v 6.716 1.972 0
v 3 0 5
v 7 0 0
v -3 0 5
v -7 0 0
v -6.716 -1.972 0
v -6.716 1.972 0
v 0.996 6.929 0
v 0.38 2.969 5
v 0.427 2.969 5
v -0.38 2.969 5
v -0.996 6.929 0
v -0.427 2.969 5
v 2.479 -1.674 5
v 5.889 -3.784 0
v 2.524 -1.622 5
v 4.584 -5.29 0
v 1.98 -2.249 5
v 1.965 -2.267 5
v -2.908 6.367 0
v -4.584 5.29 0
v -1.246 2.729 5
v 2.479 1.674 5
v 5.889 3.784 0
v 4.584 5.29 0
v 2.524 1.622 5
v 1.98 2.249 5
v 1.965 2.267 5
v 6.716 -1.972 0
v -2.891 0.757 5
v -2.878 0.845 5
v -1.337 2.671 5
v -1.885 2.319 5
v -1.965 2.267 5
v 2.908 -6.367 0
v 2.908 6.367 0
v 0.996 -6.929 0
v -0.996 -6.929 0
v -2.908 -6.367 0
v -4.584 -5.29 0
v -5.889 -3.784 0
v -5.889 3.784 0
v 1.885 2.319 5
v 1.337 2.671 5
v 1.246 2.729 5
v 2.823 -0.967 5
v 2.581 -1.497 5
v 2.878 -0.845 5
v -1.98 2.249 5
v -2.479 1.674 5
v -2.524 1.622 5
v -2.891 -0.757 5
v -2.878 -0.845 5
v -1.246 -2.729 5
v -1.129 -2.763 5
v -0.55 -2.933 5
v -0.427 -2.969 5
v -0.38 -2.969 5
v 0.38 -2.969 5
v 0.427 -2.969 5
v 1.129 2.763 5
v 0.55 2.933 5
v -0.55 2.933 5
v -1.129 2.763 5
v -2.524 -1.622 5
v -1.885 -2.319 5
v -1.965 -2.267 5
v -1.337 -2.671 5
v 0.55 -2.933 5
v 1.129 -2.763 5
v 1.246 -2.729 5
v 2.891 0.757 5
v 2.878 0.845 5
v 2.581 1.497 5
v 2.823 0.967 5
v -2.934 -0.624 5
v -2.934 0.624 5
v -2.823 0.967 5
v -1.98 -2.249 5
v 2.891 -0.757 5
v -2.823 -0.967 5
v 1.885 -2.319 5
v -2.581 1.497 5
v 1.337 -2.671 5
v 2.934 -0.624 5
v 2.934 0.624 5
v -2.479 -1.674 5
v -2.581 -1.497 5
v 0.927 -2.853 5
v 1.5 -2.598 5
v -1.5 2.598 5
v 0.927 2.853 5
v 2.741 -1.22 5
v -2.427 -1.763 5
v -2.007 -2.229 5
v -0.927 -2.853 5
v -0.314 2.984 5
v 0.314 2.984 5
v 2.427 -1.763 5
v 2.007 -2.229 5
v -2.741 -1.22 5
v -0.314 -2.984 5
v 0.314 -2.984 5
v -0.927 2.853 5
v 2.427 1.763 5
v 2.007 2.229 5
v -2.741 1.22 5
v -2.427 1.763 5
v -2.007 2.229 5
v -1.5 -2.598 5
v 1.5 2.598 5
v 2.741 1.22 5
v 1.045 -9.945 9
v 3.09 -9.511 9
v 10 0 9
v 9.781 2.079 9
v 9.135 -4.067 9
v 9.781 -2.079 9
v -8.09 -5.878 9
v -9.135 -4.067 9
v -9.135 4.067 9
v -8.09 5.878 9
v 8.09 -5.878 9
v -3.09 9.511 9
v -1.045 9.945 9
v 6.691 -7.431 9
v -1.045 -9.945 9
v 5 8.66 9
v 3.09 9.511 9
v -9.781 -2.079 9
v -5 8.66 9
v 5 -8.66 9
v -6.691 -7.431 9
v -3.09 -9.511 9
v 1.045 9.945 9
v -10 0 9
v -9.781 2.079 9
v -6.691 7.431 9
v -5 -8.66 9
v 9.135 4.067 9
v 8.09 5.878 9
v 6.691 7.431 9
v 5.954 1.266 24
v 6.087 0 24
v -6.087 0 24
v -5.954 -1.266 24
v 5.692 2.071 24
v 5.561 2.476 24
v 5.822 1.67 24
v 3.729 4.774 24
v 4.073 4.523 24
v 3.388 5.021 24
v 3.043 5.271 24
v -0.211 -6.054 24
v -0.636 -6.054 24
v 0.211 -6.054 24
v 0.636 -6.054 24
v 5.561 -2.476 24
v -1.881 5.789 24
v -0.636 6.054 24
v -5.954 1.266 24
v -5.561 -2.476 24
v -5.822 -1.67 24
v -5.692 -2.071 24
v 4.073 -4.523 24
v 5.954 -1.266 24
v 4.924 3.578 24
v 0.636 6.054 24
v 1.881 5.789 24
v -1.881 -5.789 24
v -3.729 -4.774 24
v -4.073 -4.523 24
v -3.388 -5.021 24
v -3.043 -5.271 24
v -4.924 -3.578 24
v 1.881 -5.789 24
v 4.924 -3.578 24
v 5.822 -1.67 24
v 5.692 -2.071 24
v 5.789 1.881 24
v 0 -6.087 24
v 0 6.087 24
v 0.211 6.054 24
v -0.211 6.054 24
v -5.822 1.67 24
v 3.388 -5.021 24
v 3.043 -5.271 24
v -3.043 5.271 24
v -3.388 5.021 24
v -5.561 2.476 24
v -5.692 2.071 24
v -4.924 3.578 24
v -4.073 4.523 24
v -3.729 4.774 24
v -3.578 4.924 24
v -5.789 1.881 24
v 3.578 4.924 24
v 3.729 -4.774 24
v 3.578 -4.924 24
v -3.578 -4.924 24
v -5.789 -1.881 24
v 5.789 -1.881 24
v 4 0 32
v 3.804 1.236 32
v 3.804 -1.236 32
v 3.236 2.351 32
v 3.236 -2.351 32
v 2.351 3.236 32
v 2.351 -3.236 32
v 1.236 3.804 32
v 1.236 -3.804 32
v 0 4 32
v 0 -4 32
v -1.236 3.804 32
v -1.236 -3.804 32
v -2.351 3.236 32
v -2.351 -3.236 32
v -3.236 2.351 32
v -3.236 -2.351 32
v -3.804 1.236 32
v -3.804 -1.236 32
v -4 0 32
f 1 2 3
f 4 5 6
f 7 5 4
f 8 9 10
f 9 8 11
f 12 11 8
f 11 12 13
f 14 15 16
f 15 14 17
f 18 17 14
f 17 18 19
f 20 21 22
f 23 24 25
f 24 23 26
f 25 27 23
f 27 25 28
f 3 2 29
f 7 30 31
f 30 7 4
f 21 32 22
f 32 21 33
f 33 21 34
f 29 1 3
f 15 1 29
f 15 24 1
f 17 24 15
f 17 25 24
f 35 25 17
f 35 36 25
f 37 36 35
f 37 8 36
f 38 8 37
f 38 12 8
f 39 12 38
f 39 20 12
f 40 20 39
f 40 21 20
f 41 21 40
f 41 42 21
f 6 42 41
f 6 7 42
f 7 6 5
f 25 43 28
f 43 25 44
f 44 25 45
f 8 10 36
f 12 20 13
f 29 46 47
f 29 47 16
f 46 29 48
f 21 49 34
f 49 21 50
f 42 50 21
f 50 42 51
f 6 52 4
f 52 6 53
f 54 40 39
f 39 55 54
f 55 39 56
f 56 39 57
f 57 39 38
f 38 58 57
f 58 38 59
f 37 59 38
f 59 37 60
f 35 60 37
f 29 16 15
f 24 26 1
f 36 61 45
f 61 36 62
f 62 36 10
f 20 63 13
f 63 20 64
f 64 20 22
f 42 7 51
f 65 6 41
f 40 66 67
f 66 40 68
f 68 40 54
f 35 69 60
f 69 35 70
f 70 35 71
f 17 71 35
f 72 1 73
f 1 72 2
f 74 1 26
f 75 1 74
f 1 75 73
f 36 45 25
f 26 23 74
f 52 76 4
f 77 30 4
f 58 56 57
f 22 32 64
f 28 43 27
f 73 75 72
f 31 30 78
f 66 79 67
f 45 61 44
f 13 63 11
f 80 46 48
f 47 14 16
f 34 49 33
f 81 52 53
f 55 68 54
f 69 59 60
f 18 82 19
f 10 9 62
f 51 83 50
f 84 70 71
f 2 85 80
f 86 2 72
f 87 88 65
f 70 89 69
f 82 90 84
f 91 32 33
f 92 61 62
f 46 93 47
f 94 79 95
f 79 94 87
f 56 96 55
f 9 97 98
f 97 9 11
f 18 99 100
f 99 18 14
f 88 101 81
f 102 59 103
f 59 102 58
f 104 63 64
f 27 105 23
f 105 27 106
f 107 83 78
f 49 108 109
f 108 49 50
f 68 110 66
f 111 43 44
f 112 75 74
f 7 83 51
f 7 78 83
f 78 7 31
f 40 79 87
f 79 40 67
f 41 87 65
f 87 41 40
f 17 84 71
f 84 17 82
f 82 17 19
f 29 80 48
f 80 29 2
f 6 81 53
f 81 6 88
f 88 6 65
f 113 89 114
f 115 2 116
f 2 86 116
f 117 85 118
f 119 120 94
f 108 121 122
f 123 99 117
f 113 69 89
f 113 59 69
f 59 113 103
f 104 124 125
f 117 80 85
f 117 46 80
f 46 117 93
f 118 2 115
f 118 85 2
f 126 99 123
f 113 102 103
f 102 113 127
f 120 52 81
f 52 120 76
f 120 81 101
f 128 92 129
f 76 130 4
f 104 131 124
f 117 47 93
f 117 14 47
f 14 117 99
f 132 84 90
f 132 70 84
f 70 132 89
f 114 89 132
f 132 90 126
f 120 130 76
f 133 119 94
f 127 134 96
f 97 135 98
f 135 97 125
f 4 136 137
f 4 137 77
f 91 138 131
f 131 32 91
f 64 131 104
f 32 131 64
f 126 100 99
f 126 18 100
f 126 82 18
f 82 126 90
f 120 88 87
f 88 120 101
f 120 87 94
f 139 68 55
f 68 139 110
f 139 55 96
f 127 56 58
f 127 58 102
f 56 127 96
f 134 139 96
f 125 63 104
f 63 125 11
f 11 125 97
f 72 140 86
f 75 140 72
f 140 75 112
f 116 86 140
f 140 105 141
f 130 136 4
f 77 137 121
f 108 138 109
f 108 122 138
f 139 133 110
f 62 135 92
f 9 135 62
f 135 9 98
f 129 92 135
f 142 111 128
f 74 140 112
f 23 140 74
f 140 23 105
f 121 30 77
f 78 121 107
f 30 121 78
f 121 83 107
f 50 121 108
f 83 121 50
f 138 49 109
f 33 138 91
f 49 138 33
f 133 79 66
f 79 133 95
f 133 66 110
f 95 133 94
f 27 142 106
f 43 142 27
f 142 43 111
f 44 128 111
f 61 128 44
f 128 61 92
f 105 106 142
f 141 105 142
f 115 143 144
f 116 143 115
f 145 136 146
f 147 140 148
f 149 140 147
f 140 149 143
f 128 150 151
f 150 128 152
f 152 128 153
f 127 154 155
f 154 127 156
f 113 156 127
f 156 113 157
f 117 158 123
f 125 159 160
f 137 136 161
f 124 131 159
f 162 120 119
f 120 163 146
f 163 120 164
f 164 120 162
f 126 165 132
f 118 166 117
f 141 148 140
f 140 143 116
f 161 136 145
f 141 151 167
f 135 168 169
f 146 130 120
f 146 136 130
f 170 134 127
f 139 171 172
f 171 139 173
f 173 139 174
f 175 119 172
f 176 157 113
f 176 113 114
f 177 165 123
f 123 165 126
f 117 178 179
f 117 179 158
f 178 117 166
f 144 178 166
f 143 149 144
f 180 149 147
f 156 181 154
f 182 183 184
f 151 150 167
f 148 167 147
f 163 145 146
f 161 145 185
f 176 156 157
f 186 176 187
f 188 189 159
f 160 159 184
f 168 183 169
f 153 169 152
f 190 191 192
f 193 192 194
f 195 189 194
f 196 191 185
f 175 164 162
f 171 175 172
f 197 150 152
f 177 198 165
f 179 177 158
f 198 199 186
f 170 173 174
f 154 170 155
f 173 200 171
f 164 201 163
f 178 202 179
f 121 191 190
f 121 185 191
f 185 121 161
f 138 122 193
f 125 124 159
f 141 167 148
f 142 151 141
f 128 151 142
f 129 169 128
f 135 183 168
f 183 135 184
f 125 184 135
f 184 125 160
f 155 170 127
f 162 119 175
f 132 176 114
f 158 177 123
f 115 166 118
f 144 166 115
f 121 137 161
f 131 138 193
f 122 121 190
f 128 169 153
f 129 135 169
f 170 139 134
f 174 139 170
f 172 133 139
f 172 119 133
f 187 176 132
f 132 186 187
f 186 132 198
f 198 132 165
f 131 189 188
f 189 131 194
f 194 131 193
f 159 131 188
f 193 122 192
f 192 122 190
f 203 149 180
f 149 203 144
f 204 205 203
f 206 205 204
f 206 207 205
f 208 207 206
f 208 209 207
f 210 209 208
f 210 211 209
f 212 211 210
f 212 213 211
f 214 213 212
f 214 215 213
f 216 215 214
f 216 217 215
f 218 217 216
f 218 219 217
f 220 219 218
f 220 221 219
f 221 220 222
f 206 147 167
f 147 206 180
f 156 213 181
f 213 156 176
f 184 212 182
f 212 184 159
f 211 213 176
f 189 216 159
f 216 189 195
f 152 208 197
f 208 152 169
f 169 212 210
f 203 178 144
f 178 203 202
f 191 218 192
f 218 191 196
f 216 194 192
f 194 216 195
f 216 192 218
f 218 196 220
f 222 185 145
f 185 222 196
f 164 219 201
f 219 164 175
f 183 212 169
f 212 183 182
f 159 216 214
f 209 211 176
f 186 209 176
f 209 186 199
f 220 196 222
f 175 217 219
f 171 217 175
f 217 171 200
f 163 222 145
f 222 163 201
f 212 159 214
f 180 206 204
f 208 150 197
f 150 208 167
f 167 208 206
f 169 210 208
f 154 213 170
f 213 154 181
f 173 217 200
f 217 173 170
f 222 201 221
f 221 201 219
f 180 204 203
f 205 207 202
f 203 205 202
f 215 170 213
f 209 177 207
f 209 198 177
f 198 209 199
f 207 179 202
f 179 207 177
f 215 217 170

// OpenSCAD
module lamp(r_top, r_lamp, r_middle, r_base, h_top, h_lamp, h_base_top, h_base_bottom) {
    
    // Poprawiona formuła r_upper_lamp
    r_upper_lamp = r_top+(((r_lamp - r_top)*h_top) / (h_lamp + h_top));
    
    // Podstawa
    cylinder(h_base_bottom, r1=r_base, r2=r_middle);

    // Górna część podstawy
    translate([0,0,h_base_bottom])
    cylinder(h_base_top, r1=r_middle, r2=r_lamp);

    // Główna część lampy
    translate([0,0,h_base_bottom + h_base_top])
    cylinder(h_lamp, r1=r_lamp, r2=r_upper_lamp);

    // Górna część lampy
    translate([0,0,h_base_bottom + h_base_top + h_lamp])
    cylinder(h_top, r1=r_upper_lamp, r2=r_top);
}

lamp(
    r_top = 4,
    r_lamp = 10,
    r_middle = 3,
    r_base = 7,
    h_top = 8,
    h_lamp = 15,
    h_base_top = 4,
    h_base_bottom = 5
);
